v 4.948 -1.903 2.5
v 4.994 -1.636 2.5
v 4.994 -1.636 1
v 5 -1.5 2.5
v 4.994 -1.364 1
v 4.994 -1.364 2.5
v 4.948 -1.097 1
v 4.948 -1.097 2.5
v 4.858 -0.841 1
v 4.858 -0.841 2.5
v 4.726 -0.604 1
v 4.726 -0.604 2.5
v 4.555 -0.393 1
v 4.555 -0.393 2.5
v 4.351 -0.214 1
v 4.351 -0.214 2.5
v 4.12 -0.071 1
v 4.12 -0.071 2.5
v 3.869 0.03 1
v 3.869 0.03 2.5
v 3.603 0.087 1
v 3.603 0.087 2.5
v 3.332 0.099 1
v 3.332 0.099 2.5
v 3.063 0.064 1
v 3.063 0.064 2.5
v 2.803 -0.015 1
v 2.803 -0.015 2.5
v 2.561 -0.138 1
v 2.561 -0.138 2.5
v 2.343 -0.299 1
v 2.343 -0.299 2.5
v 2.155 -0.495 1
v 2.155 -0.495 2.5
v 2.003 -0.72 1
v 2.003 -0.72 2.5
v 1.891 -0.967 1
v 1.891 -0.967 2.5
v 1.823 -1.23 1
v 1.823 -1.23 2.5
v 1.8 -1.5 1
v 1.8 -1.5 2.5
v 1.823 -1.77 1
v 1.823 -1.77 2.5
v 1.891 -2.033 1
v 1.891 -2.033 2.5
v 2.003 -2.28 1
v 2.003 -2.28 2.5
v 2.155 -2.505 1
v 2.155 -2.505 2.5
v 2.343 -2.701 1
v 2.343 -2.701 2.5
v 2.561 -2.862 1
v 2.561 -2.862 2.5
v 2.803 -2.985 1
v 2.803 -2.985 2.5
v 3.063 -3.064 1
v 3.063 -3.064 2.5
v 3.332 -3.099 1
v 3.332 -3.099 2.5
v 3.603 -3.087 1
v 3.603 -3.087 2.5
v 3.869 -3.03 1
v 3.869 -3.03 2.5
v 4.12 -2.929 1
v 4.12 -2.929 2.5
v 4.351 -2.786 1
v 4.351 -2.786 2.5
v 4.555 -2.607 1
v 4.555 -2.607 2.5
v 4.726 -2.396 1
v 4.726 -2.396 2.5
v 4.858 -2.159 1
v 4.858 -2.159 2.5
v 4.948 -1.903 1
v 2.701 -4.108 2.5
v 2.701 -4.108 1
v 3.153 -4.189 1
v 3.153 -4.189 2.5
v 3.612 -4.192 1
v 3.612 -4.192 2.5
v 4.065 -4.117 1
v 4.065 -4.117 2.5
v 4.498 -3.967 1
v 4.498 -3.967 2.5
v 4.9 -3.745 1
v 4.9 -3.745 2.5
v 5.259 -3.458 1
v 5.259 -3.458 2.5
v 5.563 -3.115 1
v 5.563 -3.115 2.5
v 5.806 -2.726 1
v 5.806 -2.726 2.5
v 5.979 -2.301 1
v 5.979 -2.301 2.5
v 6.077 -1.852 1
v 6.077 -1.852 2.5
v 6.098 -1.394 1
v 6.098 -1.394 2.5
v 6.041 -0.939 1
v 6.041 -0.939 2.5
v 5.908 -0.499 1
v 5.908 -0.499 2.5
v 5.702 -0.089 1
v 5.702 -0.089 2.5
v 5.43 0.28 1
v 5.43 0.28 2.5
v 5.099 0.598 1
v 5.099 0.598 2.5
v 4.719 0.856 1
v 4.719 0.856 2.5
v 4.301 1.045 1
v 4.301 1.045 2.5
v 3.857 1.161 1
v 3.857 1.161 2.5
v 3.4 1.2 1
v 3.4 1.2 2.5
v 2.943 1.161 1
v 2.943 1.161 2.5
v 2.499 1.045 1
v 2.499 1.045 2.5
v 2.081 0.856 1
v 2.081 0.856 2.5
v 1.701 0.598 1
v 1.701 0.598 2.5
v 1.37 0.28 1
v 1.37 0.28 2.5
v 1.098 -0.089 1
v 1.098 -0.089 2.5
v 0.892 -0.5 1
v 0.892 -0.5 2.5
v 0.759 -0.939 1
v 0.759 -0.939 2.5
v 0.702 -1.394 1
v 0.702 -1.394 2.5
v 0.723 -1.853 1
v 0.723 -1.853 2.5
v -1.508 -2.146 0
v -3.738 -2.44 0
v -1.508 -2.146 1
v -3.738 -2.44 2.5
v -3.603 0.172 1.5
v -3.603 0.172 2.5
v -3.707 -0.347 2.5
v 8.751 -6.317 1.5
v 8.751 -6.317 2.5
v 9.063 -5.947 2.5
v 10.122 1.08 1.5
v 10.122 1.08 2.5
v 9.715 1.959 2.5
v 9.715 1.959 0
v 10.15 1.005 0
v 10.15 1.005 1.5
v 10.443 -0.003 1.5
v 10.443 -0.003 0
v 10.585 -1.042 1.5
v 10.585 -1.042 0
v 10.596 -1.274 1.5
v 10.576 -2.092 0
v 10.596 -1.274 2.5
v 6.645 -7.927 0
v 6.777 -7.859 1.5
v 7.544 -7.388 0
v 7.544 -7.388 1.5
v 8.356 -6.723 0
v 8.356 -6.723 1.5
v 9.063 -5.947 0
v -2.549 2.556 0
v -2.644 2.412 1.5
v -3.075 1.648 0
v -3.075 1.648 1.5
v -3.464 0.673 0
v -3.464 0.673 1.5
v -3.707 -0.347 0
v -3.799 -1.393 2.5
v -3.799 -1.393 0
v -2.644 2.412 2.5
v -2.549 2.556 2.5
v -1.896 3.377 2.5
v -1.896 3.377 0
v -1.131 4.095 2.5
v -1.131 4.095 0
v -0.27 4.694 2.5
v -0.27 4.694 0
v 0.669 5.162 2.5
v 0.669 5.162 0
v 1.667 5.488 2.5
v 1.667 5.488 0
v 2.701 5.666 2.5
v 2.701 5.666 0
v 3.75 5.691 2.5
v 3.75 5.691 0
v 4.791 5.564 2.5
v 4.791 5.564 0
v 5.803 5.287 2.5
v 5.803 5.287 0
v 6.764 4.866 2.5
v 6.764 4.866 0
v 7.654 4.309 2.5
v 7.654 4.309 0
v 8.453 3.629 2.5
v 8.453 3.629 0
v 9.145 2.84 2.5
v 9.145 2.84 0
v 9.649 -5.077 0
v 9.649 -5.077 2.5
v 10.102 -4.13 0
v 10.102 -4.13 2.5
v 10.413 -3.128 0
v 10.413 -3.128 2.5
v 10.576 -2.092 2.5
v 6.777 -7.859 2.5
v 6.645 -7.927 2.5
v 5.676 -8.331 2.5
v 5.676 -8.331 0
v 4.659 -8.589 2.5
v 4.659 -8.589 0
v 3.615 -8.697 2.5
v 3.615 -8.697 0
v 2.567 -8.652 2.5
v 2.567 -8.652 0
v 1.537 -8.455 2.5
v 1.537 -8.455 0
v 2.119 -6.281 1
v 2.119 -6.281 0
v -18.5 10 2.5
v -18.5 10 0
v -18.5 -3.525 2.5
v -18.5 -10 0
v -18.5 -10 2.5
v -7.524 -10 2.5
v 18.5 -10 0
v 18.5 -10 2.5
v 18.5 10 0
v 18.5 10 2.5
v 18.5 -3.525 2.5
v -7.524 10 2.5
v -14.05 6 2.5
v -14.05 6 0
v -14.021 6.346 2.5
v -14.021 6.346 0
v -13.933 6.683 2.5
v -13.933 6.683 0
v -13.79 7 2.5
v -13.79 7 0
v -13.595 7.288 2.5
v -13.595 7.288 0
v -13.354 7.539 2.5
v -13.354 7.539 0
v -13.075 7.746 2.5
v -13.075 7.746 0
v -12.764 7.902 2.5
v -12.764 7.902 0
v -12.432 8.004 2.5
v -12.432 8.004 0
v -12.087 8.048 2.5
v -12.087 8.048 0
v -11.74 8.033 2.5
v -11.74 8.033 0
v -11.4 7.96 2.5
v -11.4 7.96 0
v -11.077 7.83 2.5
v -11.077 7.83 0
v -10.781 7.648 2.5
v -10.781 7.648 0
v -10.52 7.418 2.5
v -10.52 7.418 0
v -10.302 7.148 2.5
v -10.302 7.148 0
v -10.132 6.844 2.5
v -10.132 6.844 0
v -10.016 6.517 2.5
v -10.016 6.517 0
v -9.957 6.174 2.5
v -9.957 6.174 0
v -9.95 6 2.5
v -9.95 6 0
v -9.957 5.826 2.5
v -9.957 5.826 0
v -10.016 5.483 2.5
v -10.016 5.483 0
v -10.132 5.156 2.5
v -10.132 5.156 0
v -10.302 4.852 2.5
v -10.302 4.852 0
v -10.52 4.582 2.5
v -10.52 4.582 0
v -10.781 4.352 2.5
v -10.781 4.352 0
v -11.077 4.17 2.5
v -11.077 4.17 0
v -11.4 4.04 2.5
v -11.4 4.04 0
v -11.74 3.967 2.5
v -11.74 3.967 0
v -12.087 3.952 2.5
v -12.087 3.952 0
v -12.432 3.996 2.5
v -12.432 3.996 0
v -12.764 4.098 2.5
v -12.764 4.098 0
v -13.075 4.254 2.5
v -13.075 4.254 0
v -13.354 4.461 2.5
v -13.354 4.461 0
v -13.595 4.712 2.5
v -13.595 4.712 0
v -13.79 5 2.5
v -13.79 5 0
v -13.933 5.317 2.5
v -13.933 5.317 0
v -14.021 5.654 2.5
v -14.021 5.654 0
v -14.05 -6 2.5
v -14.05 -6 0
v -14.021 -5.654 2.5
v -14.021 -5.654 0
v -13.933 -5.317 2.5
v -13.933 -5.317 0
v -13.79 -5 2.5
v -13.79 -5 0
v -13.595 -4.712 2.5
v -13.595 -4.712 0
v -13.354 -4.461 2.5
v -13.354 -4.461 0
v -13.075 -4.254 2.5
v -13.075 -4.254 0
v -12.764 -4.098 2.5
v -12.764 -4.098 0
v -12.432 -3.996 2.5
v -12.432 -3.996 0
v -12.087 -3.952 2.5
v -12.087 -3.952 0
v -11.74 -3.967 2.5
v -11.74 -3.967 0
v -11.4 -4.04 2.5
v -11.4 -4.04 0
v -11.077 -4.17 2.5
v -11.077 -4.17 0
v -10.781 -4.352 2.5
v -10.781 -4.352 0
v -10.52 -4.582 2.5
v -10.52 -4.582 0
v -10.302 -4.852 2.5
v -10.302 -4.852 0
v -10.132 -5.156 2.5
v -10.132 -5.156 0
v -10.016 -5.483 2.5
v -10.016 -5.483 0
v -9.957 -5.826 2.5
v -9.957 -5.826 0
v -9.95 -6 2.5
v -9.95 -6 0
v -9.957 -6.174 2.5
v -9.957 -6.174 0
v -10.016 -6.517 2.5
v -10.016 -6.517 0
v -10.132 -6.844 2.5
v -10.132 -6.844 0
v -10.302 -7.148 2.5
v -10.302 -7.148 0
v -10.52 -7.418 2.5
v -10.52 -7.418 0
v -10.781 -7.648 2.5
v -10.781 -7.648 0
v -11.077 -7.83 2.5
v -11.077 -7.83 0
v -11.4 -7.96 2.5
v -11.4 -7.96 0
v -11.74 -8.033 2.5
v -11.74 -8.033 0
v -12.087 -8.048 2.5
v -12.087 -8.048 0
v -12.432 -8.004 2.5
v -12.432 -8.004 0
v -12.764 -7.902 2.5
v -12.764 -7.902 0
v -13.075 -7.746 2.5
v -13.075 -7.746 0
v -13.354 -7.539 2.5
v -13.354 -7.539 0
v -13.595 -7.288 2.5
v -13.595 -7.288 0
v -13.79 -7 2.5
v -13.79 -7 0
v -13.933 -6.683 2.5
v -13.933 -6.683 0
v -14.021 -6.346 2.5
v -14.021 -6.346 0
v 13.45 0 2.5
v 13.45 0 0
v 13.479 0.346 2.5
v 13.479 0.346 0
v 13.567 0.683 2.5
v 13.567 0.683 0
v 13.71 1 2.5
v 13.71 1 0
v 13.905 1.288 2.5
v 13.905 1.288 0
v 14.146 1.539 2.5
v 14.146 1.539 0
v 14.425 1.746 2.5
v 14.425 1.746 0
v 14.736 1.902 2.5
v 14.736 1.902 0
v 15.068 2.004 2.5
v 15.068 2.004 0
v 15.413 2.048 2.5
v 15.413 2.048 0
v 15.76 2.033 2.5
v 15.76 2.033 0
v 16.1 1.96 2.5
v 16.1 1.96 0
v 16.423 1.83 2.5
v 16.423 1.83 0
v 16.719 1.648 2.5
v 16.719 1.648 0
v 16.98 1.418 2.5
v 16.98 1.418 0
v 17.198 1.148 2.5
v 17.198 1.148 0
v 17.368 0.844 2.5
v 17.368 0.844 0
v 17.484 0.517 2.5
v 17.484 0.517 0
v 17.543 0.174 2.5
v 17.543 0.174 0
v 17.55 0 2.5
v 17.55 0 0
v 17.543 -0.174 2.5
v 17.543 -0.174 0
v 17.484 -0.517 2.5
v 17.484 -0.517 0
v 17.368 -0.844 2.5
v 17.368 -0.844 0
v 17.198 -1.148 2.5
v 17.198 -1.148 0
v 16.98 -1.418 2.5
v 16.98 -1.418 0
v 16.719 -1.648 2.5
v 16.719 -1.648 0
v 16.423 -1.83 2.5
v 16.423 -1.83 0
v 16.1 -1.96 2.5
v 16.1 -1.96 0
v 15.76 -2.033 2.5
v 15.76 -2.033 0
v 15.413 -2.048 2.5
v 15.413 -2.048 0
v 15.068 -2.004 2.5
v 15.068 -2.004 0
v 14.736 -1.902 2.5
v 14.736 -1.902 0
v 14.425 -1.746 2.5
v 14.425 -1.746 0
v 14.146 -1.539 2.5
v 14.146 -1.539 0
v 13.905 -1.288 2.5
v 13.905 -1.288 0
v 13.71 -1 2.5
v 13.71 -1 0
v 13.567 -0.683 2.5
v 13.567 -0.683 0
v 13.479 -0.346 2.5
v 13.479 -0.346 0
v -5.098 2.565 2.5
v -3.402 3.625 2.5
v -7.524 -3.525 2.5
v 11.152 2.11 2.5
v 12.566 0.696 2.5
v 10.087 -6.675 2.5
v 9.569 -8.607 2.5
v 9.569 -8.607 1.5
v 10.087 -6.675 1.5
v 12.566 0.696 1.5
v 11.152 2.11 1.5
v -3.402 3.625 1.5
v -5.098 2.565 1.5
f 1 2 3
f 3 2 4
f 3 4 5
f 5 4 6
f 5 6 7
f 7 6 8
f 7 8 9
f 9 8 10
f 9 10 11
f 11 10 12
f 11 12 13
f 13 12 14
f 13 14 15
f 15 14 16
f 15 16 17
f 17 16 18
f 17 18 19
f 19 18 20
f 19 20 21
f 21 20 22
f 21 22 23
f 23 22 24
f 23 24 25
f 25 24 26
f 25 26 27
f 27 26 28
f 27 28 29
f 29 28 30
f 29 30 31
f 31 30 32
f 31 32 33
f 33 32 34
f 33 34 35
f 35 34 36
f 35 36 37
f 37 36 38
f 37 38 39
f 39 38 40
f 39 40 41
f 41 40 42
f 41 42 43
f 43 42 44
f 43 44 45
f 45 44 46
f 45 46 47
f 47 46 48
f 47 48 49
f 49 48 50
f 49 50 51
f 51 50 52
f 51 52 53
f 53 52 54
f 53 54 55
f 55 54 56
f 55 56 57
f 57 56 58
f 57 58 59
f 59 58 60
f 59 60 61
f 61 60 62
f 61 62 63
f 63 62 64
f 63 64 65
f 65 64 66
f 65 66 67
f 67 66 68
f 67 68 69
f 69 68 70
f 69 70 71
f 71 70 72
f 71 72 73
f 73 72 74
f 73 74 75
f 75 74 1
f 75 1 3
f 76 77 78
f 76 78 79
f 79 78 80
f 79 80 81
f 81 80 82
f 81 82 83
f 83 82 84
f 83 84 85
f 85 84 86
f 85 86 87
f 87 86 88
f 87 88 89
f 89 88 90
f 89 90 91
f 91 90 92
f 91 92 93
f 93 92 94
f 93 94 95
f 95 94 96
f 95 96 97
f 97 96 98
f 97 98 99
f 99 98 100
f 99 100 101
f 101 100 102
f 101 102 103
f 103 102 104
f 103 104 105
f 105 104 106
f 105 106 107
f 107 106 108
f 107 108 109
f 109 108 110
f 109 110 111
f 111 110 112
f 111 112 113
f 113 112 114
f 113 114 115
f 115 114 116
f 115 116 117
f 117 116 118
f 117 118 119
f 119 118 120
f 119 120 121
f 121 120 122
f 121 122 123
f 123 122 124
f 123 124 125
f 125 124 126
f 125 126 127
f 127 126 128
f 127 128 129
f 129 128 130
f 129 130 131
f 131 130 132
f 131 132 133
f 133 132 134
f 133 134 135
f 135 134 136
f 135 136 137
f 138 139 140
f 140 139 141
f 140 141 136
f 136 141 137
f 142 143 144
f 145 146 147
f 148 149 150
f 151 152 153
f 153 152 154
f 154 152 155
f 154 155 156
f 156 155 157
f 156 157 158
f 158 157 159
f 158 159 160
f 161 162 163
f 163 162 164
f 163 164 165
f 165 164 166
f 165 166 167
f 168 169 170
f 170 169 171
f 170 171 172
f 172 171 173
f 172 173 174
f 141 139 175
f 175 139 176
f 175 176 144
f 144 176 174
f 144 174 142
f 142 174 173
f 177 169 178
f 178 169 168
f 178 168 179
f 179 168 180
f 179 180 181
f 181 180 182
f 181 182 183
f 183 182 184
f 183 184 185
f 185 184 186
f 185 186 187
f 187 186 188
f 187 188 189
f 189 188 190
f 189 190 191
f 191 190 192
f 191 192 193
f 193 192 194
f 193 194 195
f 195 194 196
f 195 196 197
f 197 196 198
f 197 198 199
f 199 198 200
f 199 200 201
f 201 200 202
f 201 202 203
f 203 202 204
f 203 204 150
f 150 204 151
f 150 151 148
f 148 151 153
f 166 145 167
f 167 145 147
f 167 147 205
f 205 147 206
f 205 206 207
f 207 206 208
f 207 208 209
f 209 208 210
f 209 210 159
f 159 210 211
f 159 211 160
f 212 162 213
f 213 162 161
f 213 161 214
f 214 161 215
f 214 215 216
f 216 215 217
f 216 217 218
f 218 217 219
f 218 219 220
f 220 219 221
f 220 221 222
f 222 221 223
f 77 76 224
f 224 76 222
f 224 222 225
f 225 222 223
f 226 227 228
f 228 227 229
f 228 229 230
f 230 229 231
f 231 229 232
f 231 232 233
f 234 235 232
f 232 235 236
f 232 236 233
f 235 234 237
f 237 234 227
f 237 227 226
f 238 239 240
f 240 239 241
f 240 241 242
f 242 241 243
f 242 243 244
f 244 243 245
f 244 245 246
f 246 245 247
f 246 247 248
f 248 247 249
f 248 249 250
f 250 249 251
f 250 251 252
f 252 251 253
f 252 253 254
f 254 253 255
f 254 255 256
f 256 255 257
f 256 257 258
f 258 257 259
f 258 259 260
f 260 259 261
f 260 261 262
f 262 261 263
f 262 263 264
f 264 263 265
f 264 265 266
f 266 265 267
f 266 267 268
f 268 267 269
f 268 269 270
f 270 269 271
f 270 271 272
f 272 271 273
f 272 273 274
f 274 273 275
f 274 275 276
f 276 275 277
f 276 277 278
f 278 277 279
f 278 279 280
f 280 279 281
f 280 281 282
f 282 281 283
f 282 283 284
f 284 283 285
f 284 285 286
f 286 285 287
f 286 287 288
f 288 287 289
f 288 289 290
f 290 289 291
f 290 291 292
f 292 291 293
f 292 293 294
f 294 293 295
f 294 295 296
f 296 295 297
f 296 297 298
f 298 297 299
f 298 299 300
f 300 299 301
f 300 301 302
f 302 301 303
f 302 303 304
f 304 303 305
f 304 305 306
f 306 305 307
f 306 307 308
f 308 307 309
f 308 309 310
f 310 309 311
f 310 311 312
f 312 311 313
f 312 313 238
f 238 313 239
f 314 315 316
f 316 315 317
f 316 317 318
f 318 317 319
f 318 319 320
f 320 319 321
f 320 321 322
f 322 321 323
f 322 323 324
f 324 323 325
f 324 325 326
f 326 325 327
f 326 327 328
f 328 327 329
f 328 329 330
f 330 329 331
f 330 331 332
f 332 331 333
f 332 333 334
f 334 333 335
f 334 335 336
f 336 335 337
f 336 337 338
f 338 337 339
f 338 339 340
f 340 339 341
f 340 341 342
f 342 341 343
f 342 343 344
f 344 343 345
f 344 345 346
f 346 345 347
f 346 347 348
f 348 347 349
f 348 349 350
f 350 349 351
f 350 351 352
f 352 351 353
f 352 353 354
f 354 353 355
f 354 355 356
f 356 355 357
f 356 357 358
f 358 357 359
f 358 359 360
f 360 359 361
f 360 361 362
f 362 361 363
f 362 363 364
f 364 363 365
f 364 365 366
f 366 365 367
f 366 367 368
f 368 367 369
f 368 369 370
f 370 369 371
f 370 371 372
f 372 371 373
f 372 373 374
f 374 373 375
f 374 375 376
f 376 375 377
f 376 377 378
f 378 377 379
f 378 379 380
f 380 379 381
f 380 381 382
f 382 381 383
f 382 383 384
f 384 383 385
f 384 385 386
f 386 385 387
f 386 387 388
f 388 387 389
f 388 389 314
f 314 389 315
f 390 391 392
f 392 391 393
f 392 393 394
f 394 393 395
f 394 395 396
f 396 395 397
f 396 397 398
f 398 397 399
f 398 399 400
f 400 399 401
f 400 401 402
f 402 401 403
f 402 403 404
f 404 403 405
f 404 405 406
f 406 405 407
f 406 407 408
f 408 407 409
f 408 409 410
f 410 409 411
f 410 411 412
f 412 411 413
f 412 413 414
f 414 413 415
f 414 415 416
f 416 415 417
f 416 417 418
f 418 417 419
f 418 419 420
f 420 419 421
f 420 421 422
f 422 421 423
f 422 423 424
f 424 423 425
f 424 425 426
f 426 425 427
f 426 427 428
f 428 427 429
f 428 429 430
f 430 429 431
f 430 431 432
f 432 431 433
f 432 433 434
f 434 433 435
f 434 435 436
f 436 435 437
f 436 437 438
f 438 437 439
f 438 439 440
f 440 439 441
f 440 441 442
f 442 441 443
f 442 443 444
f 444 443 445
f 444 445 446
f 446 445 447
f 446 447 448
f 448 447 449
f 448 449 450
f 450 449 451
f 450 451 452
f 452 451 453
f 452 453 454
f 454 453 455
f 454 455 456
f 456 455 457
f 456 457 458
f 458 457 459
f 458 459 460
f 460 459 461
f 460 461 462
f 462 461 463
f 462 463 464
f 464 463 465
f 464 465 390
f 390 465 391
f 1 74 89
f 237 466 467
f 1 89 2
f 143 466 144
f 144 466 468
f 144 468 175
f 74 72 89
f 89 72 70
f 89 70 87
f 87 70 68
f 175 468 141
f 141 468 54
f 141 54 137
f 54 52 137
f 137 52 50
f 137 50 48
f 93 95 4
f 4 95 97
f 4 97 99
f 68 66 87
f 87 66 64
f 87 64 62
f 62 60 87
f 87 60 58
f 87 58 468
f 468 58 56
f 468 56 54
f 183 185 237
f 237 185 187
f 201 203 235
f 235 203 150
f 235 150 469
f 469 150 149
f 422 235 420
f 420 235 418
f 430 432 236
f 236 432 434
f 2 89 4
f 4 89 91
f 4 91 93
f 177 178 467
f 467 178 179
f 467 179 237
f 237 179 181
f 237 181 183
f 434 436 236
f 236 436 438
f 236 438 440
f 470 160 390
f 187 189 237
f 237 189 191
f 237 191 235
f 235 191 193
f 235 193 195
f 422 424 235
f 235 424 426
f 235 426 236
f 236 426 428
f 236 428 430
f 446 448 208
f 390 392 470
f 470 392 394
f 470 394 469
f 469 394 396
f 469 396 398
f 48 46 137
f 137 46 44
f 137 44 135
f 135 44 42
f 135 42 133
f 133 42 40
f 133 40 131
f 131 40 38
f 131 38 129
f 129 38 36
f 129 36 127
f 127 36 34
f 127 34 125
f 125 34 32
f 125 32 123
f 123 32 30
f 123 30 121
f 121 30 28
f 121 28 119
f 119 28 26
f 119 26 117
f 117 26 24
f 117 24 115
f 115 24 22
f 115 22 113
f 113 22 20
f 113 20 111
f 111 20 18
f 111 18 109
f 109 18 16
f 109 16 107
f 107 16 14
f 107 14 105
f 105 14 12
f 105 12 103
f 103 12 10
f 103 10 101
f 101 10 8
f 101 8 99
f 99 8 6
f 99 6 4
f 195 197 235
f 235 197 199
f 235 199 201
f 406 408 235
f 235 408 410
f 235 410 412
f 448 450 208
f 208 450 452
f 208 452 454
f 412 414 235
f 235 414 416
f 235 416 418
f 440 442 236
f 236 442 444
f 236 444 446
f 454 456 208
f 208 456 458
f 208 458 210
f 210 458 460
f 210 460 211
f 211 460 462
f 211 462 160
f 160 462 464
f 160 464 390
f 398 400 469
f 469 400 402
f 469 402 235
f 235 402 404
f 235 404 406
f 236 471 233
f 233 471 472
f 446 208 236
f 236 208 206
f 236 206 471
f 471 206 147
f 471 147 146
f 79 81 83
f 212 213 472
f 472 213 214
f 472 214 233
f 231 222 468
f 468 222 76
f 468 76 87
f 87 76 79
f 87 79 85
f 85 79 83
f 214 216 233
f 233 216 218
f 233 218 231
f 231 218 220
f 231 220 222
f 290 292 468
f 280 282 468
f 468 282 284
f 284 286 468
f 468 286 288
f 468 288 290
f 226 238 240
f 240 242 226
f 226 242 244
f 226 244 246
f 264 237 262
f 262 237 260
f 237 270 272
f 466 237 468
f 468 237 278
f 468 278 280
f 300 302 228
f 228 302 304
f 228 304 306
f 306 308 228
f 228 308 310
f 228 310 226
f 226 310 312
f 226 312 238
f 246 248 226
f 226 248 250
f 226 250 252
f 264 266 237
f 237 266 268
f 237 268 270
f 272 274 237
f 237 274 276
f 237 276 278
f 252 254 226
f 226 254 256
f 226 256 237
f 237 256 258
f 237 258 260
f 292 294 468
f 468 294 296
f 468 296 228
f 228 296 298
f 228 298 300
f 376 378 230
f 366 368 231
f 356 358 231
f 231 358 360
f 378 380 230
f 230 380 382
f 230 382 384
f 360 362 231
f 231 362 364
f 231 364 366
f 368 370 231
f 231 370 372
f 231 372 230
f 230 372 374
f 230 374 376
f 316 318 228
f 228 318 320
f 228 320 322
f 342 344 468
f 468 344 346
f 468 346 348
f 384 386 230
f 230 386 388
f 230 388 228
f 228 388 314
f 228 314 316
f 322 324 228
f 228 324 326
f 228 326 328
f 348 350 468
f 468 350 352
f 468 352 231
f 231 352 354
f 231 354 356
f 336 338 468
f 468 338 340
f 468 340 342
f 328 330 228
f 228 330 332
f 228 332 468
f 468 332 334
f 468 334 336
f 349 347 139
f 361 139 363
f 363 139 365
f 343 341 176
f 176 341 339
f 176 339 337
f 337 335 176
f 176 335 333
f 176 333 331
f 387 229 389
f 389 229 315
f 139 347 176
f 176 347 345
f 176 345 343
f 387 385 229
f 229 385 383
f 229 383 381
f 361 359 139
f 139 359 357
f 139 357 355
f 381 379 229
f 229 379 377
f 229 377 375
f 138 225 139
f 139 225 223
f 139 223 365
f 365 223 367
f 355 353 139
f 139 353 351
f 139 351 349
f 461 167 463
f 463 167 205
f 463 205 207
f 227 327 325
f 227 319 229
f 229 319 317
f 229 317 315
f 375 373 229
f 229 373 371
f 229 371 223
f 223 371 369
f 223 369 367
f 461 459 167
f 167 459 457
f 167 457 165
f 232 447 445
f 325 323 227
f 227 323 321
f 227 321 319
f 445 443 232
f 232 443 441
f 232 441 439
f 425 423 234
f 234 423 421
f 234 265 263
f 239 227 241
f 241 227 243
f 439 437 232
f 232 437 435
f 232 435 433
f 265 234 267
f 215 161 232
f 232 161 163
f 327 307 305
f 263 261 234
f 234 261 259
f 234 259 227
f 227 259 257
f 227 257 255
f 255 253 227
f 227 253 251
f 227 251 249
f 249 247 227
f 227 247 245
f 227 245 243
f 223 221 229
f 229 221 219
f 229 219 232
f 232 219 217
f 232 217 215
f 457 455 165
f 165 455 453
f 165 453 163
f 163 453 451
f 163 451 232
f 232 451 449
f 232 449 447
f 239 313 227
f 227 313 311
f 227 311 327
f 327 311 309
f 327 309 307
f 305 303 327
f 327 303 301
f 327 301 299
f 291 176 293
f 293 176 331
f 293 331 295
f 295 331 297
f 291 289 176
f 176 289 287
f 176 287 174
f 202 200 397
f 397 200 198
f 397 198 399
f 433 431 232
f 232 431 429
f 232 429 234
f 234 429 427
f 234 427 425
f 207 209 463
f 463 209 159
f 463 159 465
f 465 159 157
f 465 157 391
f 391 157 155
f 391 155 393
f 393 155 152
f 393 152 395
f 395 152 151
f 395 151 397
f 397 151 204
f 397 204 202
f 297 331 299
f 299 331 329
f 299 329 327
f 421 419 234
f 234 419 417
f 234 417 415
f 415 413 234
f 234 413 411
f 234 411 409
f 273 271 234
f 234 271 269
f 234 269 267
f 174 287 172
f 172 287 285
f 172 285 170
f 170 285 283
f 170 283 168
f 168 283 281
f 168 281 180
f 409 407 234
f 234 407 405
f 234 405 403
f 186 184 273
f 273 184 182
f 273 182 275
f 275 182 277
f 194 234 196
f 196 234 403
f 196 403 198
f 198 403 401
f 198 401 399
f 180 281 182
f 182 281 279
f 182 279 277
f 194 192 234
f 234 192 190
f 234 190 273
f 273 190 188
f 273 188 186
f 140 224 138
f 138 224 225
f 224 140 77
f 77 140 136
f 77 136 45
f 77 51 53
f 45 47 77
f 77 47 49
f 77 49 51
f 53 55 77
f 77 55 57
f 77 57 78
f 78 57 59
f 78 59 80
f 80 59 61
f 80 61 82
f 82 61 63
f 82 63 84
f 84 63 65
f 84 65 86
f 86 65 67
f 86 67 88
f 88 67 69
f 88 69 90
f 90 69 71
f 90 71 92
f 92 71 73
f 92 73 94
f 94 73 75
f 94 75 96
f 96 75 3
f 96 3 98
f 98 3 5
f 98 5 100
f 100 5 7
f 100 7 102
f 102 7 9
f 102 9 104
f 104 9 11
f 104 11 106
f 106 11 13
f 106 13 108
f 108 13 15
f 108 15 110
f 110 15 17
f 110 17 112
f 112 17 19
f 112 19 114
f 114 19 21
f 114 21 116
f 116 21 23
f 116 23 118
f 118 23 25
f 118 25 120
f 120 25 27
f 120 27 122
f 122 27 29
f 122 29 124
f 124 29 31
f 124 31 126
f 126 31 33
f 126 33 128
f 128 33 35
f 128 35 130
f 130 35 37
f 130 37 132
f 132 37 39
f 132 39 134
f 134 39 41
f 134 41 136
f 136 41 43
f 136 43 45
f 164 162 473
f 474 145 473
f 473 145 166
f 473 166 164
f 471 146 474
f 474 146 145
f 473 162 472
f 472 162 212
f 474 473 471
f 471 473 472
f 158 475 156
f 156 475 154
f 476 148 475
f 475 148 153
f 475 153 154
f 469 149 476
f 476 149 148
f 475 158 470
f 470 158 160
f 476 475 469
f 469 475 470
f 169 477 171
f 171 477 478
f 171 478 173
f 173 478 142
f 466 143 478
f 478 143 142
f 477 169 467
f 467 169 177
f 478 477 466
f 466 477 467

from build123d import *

# Parameters (mm, degrees)
ESQUISSE1_W             = 37
ESQUISSE1_H             = 20
ESQUISSE1_R             = 2.05
ESQUISSE1_R_2           = 1.6
BOSS_EXTRU_1_DEPTH      = 2.5
ESQUISSE3_R             = 1.6
ENL_V_MAT_EXTRU_1_DEPTH = 1
ENL_V_MAT_EXTRU_2_DEPTH = 1


with BuildPart() as part:
    # Esquisse1 → Boss.-Extru.1 (new body)
    with BuildSketch(Plane.XY):
        Rectangle(ESQUISSE1_W, ESQUISSE1_H)
        with Locations((-12, 6)):
            Circle(ESQUISSE1_R, mode=Mode.SUBTRACT)
        with Locations((-12, -6)):
            Circle(ESQUISSE1_R, mode=Mode.SUBTRACT)
        with Locations((15.5, 0)):
            Circle(ESQUISSE1_R, mode=Mode.SUBTRACT)
        with Locations((3.4, -1.5)):
            Circle(ESQUISSE1_R_2, mode=Mode.SUBTRACT)
        with BuildLine():
            Line((-3.738369819, -2.440040602), (0.723111318, -1.852515226))
            ThreePointArc((0.723111318, -1.852515226), (5.429936055, 0.280269534), (2.701188578, -4.107999731))
            Line((2.701188578, -4.107999731), (1.536502875, -8.454665949))
            ThreePointArc((1.536502875, -8.454665949), (8.813162812, 3.247385424), (-3.738369819, -2.440040602))
        make_face(mode=Mode.SUBTRACT)
    extrude(amount=BOSS_EXTRU_1_DEPTH)

    # Esquisse3 → Enlèv. mat.-Extru.1 (cut)
    # profile 1 of 2: a face of its own
    with BuildSketch(Plane(origin=(0, 0, 0), x_dir=(-1, 0, 0), z_dir=(0, 0, -1))):
        with BuildLine():
            Line((3.738369819, -2.440040602), (-0.723111318, -1.852515226))
            ThreePointArc((-0.723111318, -1.852515226), (-5.429936055, 0.280269534), (-2.701188578, -4.107999731))
            Line((-2.701188578, -4.107999731), (-1.536502875, -8.454665949))
            ThreePointArc((-1.536502875, -8.454665949), (-8.813162812, 3.247385424), (3.738369819, -2.440040602))
        make_face()
    # profile 2 of 2: a face of its own
    with BuildSketch(Plane(origin=(0, 0, 0), x_dir=(-1, 0, 0), z_dir=(0, 0, -1))):
        with BuildLine():
            Line((-2.118845727, -6.28133284), (1.50762925, -2.146277914))
            Line((1.50762925, -2.146277914), (-0.723111318, -1.852515226))
            ThreePointArc((-0.723111318, -1.852515226), (-5.429936055, 0.280269534), (-2.701188578, -4.107999731))
            Line((-2.701188578, -4.107999731), (-2.118845727, -6.28133284))
        make_face()
        with Locations((-3.4, -1.5)):
            Circle(ESQUISSE3_R, mode=Mode.SUBTRACT)
    extrude(amount=-ENL_V_MAT_EXTRU_1_DEPTH, mode=Mode.SUBTRACT)

    # Esquisse4 → Enlèv. mat.-Extru.2 (cut)
    with BuildSketch(Plane.XY.offset(2.5)):
        Polygon((-5.098492824, 2.565126725), (-3.402396632, 3.624965253), (-1.282719575, 0.232772869), (-2.978815767, -0.82706566), align=None)
        Polygon((11.151538443, 2.109938013), (12.565752005, 0.69572445), (9.73732488, -2.132702674), (8.323111318, -0.718489112), align=None)
        Polygon((10.086814623, -6.675295623), (9.569176533, -8.607147276), (5.705473228, -7.571871096), (6.223111318, -5.640019443), align=None)
    extrude(amount=-ENL_V_MAT_EXTRU_2_DEPTH, mode=Mode.SUBTRACT)


solid = part.part
